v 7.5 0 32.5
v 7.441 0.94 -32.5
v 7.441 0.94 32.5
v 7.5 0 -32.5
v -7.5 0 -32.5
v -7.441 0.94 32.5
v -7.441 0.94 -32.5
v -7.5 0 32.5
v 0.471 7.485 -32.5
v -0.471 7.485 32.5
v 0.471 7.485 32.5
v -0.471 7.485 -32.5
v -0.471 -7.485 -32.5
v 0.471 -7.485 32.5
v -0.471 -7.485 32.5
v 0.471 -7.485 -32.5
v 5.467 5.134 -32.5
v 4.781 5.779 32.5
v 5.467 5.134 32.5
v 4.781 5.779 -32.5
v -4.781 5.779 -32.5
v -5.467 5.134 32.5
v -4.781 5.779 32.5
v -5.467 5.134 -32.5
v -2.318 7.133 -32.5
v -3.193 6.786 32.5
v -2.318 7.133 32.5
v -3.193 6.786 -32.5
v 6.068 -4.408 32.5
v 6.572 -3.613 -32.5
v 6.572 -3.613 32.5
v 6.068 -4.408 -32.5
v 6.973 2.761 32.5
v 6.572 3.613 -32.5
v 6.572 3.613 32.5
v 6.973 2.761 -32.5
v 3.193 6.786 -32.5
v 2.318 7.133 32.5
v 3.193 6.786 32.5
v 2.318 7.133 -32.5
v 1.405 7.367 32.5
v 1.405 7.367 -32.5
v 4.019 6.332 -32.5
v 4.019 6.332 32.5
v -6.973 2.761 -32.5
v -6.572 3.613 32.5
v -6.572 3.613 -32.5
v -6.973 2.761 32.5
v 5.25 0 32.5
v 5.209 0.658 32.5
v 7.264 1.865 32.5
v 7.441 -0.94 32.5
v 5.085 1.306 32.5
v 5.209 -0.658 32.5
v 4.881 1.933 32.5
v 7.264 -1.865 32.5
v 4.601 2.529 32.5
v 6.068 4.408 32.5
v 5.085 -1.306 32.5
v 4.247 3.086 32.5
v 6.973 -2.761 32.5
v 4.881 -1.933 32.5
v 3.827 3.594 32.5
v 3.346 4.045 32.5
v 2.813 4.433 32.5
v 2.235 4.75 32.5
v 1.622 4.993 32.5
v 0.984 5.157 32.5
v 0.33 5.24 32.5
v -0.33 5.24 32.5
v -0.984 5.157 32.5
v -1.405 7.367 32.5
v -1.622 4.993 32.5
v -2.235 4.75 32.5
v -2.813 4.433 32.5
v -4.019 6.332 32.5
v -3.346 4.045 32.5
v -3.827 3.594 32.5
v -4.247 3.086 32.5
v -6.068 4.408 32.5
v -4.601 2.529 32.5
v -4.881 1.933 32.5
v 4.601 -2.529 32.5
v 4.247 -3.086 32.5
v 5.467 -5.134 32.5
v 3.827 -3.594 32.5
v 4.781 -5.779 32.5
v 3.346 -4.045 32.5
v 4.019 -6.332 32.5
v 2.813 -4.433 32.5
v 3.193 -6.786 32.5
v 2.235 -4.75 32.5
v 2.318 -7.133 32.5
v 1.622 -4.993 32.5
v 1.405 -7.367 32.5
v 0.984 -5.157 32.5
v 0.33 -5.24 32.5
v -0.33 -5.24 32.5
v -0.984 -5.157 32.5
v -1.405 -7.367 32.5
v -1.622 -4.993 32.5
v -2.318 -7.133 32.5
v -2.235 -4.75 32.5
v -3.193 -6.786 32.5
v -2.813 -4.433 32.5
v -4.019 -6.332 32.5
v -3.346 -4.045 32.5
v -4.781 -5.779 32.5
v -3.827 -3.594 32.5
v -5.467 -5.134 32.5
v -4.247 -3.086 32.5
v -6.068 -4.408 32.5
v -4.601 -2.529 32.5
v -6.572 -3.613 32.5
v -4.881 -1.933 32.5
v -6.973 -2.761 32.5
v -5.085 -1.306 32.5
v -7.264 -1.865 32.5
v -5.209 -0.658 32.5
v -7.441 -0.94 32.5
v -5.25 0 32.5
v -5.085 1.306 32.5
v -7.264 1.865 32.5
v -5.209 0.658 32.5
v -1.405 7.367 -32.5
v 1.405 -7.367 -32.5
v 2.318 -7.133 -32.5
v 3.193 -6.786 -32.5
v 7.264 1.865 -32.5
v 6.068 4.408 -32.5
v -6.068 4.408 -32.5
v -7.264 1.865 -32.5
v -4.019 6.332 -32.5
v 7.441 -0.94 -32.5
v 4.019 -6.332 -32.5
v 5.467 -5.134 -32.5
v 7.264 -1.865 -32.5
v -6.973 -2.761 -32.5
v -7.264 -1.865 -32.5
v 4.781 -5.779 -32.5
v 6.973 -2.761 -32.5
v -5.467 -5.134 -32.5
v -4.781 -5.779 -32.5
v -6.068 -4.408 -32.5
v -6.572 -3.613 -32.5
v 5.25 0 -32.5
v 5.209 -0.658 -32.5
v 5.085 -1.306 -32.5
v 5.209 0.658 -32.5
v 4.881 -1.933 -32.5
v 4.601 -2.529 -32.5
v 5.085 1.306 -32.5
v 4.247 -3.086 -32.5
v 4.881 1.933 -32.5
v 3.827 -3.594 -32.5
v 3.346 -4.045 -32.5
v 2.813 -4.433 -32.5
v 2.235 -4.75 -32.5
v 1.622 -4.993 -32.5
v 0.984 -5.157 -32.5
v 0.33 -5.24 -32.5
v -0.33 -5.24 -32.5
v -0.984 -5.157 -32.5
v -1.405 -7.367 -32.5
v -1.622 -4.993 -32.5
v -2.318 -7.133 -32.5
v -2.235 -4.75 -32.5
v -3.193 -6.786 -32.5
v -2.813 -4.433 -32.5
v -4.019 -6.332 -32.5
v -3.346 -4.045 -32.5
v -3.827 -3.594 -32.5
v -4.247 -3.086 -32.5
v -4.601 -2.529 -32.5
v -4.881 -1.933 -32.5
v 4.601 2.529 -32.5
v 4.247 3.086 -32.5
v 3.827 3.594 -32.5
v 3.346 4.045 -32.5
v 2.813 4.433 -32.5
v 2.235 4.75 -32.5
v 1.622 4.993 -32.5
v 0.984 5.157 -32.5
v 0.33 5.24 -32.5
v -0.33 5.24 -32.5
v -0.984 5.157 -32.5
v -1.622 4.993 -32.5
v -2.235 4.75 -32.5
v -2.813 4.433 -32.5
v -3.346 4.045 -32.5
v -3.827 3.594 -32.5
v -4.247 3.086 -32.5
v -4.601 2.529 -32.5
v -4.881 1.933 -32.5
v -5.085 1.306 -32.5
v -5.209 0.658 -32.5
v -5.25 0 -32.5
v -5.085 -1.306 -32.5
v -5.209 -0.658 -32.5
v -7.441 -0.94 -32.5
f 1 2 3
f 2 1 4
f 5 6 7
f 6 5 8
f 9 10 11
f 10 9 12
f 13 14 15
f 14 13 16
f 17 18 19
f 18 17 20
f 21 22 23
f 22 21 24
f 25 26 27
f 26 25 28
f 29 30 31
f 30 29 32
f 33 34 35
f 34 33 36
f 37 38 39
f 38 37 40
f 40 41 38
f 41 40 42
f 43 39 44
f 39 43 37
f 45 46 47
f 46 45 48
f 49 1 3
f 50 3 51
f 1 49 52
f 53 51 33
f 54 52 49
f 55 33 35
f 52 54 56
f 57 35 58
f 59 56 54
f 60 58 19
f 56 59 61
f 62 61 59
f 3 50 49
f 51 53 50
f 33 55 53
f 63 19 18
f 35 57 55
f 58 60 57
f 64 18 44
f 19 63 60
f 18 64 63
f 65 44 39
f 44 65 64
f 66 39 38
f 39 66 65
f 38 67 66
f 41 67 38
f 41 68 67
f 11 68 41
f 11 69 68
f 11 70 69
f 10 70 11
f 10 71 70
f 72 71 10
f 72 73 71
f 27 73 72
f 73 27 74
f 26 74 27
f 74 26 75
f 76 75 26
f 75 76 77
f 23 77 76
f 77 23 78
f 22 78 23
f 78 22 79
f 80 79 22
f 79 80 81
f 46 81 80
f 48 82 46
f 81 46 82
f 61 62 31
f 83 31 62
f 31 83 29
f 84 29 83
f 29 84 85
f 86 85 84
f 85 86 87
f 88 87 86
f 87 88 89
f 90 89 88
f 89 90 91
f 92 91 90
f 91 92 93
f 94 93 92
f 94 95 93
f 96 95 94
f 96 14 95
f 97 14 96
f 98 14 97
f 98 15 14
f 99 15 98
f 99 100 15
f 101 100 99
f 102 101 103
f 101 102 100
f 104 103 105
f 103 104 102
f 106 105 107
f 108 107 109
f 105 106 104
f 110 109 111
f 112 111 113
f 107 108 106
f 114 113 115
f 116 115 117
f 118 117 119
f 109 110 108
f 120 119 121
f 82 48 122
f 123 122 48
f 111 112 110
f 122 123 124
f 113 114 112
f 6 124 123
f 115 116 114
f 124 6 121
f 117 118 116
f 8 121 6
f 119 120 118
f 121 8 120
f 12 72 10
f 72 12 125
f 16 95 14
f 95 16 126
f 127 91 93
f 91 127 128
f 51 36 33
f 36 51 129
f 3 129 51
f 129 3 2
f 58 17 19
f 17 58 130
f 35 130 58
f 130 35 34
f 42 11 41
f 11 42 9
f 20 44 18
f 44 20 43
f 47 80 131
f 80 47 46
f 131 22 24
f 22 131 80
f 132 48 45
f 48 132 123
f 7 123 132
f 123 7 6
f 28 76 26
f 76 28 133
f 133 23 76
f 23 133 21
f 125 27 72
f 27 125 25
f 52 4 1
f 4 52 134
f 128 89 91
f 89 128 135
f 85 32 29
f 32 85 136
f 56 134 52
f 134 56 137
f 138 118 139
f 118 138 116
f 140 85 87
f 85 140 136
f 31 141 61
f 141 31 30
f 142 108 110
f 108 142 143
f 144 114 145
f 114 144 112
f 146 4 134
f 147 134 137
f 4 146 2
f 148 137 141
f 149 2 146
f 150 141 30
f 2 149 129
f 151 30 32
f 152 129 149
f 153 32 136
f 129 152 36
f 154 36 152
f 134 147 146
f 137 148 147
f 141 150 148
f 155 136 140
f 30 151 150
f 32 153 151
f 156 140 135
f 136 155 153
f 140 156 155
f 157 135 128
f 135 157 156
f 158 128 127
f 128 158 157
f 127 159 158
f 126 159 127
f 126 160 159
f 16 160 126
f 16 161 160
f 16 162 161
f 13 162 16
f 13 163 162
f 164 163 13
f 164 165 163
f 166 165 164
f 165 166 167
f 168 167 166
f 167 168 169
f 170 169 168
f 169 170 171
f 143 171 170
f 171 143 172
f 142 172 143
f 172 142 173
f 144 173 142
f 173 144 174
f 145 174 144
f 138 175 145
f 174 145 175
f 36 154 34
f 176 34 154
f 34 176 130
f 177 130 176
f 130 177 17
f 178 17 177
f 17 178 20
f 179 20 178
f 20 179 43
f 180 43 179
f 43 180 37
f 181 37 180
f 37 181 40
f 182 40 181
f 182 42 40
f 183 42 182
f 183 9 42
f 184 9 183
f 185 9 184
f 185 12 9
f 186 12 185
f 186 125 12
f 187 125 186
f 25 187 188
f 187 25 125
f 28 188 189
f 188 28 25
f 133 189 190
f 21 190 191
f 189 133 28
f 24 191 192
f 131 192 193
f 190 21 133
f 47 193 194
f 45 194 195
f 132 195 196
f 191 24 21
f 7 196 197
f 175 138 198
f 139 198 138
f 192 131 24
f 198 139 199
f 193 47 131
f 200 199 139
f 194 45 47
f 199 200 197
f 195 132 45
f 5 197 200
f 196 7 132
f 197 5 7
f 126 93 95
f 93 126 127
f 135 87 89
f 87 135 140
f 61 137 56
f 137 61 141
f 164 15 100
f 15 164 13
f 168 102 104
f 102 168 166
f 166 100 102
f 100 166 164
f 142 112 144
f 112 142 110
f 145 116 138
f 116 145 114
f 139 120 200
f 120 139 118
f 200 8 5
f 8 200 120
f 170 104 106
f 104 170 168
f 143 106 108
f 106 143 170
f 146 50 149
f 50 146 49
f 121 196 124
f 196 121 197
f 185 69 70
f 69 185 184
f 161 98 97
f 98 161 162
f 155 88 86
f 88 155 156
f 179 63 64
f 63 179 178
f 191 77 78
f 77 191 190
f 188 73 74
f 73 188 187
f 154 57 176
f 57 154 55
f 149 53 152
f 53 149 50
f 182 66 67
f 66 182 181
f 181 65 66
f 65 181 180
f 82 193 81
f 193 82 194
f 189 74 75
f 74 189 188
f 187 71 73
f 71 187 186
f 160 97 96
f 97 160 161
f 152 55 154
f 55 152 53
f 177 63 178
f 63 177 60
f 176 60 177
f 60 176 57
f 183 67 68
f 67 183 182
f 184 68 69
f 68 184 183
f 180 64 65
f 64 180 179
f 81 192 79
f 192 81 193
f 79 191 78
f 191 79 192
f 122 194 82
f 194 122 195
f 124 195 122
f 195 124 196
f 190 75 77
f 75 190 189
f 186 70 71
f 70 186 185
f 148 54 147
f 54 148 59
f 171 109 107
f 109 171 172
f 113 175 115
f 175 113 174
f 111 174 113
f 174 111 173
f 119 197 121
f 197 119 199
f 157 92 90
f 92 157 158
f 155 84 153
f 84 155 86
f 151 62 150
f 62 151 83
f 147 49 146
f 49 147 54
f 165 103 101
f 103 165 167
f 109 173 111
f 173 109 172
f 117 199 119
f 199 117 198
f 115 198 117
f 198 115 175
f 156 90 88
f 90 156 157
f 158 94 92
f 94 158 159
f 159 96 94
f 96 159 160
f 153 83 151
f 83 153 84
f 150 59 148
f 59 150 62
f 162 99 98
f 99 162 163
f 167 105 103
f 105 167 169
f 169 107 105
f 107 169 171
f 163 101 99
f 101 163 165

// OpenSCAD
$fn = 50;


difference() {
	union() {
		translate(v = [0, 0, -32.5000000000]) {
			cylinder(h = 65, r = 7.5000000000);
		}
	}
	union() {
		translate(v = [0, 0, -100.0000000000]) {
			cylinder(h = 200, r = 5.2500000000);
		}
	}
}
